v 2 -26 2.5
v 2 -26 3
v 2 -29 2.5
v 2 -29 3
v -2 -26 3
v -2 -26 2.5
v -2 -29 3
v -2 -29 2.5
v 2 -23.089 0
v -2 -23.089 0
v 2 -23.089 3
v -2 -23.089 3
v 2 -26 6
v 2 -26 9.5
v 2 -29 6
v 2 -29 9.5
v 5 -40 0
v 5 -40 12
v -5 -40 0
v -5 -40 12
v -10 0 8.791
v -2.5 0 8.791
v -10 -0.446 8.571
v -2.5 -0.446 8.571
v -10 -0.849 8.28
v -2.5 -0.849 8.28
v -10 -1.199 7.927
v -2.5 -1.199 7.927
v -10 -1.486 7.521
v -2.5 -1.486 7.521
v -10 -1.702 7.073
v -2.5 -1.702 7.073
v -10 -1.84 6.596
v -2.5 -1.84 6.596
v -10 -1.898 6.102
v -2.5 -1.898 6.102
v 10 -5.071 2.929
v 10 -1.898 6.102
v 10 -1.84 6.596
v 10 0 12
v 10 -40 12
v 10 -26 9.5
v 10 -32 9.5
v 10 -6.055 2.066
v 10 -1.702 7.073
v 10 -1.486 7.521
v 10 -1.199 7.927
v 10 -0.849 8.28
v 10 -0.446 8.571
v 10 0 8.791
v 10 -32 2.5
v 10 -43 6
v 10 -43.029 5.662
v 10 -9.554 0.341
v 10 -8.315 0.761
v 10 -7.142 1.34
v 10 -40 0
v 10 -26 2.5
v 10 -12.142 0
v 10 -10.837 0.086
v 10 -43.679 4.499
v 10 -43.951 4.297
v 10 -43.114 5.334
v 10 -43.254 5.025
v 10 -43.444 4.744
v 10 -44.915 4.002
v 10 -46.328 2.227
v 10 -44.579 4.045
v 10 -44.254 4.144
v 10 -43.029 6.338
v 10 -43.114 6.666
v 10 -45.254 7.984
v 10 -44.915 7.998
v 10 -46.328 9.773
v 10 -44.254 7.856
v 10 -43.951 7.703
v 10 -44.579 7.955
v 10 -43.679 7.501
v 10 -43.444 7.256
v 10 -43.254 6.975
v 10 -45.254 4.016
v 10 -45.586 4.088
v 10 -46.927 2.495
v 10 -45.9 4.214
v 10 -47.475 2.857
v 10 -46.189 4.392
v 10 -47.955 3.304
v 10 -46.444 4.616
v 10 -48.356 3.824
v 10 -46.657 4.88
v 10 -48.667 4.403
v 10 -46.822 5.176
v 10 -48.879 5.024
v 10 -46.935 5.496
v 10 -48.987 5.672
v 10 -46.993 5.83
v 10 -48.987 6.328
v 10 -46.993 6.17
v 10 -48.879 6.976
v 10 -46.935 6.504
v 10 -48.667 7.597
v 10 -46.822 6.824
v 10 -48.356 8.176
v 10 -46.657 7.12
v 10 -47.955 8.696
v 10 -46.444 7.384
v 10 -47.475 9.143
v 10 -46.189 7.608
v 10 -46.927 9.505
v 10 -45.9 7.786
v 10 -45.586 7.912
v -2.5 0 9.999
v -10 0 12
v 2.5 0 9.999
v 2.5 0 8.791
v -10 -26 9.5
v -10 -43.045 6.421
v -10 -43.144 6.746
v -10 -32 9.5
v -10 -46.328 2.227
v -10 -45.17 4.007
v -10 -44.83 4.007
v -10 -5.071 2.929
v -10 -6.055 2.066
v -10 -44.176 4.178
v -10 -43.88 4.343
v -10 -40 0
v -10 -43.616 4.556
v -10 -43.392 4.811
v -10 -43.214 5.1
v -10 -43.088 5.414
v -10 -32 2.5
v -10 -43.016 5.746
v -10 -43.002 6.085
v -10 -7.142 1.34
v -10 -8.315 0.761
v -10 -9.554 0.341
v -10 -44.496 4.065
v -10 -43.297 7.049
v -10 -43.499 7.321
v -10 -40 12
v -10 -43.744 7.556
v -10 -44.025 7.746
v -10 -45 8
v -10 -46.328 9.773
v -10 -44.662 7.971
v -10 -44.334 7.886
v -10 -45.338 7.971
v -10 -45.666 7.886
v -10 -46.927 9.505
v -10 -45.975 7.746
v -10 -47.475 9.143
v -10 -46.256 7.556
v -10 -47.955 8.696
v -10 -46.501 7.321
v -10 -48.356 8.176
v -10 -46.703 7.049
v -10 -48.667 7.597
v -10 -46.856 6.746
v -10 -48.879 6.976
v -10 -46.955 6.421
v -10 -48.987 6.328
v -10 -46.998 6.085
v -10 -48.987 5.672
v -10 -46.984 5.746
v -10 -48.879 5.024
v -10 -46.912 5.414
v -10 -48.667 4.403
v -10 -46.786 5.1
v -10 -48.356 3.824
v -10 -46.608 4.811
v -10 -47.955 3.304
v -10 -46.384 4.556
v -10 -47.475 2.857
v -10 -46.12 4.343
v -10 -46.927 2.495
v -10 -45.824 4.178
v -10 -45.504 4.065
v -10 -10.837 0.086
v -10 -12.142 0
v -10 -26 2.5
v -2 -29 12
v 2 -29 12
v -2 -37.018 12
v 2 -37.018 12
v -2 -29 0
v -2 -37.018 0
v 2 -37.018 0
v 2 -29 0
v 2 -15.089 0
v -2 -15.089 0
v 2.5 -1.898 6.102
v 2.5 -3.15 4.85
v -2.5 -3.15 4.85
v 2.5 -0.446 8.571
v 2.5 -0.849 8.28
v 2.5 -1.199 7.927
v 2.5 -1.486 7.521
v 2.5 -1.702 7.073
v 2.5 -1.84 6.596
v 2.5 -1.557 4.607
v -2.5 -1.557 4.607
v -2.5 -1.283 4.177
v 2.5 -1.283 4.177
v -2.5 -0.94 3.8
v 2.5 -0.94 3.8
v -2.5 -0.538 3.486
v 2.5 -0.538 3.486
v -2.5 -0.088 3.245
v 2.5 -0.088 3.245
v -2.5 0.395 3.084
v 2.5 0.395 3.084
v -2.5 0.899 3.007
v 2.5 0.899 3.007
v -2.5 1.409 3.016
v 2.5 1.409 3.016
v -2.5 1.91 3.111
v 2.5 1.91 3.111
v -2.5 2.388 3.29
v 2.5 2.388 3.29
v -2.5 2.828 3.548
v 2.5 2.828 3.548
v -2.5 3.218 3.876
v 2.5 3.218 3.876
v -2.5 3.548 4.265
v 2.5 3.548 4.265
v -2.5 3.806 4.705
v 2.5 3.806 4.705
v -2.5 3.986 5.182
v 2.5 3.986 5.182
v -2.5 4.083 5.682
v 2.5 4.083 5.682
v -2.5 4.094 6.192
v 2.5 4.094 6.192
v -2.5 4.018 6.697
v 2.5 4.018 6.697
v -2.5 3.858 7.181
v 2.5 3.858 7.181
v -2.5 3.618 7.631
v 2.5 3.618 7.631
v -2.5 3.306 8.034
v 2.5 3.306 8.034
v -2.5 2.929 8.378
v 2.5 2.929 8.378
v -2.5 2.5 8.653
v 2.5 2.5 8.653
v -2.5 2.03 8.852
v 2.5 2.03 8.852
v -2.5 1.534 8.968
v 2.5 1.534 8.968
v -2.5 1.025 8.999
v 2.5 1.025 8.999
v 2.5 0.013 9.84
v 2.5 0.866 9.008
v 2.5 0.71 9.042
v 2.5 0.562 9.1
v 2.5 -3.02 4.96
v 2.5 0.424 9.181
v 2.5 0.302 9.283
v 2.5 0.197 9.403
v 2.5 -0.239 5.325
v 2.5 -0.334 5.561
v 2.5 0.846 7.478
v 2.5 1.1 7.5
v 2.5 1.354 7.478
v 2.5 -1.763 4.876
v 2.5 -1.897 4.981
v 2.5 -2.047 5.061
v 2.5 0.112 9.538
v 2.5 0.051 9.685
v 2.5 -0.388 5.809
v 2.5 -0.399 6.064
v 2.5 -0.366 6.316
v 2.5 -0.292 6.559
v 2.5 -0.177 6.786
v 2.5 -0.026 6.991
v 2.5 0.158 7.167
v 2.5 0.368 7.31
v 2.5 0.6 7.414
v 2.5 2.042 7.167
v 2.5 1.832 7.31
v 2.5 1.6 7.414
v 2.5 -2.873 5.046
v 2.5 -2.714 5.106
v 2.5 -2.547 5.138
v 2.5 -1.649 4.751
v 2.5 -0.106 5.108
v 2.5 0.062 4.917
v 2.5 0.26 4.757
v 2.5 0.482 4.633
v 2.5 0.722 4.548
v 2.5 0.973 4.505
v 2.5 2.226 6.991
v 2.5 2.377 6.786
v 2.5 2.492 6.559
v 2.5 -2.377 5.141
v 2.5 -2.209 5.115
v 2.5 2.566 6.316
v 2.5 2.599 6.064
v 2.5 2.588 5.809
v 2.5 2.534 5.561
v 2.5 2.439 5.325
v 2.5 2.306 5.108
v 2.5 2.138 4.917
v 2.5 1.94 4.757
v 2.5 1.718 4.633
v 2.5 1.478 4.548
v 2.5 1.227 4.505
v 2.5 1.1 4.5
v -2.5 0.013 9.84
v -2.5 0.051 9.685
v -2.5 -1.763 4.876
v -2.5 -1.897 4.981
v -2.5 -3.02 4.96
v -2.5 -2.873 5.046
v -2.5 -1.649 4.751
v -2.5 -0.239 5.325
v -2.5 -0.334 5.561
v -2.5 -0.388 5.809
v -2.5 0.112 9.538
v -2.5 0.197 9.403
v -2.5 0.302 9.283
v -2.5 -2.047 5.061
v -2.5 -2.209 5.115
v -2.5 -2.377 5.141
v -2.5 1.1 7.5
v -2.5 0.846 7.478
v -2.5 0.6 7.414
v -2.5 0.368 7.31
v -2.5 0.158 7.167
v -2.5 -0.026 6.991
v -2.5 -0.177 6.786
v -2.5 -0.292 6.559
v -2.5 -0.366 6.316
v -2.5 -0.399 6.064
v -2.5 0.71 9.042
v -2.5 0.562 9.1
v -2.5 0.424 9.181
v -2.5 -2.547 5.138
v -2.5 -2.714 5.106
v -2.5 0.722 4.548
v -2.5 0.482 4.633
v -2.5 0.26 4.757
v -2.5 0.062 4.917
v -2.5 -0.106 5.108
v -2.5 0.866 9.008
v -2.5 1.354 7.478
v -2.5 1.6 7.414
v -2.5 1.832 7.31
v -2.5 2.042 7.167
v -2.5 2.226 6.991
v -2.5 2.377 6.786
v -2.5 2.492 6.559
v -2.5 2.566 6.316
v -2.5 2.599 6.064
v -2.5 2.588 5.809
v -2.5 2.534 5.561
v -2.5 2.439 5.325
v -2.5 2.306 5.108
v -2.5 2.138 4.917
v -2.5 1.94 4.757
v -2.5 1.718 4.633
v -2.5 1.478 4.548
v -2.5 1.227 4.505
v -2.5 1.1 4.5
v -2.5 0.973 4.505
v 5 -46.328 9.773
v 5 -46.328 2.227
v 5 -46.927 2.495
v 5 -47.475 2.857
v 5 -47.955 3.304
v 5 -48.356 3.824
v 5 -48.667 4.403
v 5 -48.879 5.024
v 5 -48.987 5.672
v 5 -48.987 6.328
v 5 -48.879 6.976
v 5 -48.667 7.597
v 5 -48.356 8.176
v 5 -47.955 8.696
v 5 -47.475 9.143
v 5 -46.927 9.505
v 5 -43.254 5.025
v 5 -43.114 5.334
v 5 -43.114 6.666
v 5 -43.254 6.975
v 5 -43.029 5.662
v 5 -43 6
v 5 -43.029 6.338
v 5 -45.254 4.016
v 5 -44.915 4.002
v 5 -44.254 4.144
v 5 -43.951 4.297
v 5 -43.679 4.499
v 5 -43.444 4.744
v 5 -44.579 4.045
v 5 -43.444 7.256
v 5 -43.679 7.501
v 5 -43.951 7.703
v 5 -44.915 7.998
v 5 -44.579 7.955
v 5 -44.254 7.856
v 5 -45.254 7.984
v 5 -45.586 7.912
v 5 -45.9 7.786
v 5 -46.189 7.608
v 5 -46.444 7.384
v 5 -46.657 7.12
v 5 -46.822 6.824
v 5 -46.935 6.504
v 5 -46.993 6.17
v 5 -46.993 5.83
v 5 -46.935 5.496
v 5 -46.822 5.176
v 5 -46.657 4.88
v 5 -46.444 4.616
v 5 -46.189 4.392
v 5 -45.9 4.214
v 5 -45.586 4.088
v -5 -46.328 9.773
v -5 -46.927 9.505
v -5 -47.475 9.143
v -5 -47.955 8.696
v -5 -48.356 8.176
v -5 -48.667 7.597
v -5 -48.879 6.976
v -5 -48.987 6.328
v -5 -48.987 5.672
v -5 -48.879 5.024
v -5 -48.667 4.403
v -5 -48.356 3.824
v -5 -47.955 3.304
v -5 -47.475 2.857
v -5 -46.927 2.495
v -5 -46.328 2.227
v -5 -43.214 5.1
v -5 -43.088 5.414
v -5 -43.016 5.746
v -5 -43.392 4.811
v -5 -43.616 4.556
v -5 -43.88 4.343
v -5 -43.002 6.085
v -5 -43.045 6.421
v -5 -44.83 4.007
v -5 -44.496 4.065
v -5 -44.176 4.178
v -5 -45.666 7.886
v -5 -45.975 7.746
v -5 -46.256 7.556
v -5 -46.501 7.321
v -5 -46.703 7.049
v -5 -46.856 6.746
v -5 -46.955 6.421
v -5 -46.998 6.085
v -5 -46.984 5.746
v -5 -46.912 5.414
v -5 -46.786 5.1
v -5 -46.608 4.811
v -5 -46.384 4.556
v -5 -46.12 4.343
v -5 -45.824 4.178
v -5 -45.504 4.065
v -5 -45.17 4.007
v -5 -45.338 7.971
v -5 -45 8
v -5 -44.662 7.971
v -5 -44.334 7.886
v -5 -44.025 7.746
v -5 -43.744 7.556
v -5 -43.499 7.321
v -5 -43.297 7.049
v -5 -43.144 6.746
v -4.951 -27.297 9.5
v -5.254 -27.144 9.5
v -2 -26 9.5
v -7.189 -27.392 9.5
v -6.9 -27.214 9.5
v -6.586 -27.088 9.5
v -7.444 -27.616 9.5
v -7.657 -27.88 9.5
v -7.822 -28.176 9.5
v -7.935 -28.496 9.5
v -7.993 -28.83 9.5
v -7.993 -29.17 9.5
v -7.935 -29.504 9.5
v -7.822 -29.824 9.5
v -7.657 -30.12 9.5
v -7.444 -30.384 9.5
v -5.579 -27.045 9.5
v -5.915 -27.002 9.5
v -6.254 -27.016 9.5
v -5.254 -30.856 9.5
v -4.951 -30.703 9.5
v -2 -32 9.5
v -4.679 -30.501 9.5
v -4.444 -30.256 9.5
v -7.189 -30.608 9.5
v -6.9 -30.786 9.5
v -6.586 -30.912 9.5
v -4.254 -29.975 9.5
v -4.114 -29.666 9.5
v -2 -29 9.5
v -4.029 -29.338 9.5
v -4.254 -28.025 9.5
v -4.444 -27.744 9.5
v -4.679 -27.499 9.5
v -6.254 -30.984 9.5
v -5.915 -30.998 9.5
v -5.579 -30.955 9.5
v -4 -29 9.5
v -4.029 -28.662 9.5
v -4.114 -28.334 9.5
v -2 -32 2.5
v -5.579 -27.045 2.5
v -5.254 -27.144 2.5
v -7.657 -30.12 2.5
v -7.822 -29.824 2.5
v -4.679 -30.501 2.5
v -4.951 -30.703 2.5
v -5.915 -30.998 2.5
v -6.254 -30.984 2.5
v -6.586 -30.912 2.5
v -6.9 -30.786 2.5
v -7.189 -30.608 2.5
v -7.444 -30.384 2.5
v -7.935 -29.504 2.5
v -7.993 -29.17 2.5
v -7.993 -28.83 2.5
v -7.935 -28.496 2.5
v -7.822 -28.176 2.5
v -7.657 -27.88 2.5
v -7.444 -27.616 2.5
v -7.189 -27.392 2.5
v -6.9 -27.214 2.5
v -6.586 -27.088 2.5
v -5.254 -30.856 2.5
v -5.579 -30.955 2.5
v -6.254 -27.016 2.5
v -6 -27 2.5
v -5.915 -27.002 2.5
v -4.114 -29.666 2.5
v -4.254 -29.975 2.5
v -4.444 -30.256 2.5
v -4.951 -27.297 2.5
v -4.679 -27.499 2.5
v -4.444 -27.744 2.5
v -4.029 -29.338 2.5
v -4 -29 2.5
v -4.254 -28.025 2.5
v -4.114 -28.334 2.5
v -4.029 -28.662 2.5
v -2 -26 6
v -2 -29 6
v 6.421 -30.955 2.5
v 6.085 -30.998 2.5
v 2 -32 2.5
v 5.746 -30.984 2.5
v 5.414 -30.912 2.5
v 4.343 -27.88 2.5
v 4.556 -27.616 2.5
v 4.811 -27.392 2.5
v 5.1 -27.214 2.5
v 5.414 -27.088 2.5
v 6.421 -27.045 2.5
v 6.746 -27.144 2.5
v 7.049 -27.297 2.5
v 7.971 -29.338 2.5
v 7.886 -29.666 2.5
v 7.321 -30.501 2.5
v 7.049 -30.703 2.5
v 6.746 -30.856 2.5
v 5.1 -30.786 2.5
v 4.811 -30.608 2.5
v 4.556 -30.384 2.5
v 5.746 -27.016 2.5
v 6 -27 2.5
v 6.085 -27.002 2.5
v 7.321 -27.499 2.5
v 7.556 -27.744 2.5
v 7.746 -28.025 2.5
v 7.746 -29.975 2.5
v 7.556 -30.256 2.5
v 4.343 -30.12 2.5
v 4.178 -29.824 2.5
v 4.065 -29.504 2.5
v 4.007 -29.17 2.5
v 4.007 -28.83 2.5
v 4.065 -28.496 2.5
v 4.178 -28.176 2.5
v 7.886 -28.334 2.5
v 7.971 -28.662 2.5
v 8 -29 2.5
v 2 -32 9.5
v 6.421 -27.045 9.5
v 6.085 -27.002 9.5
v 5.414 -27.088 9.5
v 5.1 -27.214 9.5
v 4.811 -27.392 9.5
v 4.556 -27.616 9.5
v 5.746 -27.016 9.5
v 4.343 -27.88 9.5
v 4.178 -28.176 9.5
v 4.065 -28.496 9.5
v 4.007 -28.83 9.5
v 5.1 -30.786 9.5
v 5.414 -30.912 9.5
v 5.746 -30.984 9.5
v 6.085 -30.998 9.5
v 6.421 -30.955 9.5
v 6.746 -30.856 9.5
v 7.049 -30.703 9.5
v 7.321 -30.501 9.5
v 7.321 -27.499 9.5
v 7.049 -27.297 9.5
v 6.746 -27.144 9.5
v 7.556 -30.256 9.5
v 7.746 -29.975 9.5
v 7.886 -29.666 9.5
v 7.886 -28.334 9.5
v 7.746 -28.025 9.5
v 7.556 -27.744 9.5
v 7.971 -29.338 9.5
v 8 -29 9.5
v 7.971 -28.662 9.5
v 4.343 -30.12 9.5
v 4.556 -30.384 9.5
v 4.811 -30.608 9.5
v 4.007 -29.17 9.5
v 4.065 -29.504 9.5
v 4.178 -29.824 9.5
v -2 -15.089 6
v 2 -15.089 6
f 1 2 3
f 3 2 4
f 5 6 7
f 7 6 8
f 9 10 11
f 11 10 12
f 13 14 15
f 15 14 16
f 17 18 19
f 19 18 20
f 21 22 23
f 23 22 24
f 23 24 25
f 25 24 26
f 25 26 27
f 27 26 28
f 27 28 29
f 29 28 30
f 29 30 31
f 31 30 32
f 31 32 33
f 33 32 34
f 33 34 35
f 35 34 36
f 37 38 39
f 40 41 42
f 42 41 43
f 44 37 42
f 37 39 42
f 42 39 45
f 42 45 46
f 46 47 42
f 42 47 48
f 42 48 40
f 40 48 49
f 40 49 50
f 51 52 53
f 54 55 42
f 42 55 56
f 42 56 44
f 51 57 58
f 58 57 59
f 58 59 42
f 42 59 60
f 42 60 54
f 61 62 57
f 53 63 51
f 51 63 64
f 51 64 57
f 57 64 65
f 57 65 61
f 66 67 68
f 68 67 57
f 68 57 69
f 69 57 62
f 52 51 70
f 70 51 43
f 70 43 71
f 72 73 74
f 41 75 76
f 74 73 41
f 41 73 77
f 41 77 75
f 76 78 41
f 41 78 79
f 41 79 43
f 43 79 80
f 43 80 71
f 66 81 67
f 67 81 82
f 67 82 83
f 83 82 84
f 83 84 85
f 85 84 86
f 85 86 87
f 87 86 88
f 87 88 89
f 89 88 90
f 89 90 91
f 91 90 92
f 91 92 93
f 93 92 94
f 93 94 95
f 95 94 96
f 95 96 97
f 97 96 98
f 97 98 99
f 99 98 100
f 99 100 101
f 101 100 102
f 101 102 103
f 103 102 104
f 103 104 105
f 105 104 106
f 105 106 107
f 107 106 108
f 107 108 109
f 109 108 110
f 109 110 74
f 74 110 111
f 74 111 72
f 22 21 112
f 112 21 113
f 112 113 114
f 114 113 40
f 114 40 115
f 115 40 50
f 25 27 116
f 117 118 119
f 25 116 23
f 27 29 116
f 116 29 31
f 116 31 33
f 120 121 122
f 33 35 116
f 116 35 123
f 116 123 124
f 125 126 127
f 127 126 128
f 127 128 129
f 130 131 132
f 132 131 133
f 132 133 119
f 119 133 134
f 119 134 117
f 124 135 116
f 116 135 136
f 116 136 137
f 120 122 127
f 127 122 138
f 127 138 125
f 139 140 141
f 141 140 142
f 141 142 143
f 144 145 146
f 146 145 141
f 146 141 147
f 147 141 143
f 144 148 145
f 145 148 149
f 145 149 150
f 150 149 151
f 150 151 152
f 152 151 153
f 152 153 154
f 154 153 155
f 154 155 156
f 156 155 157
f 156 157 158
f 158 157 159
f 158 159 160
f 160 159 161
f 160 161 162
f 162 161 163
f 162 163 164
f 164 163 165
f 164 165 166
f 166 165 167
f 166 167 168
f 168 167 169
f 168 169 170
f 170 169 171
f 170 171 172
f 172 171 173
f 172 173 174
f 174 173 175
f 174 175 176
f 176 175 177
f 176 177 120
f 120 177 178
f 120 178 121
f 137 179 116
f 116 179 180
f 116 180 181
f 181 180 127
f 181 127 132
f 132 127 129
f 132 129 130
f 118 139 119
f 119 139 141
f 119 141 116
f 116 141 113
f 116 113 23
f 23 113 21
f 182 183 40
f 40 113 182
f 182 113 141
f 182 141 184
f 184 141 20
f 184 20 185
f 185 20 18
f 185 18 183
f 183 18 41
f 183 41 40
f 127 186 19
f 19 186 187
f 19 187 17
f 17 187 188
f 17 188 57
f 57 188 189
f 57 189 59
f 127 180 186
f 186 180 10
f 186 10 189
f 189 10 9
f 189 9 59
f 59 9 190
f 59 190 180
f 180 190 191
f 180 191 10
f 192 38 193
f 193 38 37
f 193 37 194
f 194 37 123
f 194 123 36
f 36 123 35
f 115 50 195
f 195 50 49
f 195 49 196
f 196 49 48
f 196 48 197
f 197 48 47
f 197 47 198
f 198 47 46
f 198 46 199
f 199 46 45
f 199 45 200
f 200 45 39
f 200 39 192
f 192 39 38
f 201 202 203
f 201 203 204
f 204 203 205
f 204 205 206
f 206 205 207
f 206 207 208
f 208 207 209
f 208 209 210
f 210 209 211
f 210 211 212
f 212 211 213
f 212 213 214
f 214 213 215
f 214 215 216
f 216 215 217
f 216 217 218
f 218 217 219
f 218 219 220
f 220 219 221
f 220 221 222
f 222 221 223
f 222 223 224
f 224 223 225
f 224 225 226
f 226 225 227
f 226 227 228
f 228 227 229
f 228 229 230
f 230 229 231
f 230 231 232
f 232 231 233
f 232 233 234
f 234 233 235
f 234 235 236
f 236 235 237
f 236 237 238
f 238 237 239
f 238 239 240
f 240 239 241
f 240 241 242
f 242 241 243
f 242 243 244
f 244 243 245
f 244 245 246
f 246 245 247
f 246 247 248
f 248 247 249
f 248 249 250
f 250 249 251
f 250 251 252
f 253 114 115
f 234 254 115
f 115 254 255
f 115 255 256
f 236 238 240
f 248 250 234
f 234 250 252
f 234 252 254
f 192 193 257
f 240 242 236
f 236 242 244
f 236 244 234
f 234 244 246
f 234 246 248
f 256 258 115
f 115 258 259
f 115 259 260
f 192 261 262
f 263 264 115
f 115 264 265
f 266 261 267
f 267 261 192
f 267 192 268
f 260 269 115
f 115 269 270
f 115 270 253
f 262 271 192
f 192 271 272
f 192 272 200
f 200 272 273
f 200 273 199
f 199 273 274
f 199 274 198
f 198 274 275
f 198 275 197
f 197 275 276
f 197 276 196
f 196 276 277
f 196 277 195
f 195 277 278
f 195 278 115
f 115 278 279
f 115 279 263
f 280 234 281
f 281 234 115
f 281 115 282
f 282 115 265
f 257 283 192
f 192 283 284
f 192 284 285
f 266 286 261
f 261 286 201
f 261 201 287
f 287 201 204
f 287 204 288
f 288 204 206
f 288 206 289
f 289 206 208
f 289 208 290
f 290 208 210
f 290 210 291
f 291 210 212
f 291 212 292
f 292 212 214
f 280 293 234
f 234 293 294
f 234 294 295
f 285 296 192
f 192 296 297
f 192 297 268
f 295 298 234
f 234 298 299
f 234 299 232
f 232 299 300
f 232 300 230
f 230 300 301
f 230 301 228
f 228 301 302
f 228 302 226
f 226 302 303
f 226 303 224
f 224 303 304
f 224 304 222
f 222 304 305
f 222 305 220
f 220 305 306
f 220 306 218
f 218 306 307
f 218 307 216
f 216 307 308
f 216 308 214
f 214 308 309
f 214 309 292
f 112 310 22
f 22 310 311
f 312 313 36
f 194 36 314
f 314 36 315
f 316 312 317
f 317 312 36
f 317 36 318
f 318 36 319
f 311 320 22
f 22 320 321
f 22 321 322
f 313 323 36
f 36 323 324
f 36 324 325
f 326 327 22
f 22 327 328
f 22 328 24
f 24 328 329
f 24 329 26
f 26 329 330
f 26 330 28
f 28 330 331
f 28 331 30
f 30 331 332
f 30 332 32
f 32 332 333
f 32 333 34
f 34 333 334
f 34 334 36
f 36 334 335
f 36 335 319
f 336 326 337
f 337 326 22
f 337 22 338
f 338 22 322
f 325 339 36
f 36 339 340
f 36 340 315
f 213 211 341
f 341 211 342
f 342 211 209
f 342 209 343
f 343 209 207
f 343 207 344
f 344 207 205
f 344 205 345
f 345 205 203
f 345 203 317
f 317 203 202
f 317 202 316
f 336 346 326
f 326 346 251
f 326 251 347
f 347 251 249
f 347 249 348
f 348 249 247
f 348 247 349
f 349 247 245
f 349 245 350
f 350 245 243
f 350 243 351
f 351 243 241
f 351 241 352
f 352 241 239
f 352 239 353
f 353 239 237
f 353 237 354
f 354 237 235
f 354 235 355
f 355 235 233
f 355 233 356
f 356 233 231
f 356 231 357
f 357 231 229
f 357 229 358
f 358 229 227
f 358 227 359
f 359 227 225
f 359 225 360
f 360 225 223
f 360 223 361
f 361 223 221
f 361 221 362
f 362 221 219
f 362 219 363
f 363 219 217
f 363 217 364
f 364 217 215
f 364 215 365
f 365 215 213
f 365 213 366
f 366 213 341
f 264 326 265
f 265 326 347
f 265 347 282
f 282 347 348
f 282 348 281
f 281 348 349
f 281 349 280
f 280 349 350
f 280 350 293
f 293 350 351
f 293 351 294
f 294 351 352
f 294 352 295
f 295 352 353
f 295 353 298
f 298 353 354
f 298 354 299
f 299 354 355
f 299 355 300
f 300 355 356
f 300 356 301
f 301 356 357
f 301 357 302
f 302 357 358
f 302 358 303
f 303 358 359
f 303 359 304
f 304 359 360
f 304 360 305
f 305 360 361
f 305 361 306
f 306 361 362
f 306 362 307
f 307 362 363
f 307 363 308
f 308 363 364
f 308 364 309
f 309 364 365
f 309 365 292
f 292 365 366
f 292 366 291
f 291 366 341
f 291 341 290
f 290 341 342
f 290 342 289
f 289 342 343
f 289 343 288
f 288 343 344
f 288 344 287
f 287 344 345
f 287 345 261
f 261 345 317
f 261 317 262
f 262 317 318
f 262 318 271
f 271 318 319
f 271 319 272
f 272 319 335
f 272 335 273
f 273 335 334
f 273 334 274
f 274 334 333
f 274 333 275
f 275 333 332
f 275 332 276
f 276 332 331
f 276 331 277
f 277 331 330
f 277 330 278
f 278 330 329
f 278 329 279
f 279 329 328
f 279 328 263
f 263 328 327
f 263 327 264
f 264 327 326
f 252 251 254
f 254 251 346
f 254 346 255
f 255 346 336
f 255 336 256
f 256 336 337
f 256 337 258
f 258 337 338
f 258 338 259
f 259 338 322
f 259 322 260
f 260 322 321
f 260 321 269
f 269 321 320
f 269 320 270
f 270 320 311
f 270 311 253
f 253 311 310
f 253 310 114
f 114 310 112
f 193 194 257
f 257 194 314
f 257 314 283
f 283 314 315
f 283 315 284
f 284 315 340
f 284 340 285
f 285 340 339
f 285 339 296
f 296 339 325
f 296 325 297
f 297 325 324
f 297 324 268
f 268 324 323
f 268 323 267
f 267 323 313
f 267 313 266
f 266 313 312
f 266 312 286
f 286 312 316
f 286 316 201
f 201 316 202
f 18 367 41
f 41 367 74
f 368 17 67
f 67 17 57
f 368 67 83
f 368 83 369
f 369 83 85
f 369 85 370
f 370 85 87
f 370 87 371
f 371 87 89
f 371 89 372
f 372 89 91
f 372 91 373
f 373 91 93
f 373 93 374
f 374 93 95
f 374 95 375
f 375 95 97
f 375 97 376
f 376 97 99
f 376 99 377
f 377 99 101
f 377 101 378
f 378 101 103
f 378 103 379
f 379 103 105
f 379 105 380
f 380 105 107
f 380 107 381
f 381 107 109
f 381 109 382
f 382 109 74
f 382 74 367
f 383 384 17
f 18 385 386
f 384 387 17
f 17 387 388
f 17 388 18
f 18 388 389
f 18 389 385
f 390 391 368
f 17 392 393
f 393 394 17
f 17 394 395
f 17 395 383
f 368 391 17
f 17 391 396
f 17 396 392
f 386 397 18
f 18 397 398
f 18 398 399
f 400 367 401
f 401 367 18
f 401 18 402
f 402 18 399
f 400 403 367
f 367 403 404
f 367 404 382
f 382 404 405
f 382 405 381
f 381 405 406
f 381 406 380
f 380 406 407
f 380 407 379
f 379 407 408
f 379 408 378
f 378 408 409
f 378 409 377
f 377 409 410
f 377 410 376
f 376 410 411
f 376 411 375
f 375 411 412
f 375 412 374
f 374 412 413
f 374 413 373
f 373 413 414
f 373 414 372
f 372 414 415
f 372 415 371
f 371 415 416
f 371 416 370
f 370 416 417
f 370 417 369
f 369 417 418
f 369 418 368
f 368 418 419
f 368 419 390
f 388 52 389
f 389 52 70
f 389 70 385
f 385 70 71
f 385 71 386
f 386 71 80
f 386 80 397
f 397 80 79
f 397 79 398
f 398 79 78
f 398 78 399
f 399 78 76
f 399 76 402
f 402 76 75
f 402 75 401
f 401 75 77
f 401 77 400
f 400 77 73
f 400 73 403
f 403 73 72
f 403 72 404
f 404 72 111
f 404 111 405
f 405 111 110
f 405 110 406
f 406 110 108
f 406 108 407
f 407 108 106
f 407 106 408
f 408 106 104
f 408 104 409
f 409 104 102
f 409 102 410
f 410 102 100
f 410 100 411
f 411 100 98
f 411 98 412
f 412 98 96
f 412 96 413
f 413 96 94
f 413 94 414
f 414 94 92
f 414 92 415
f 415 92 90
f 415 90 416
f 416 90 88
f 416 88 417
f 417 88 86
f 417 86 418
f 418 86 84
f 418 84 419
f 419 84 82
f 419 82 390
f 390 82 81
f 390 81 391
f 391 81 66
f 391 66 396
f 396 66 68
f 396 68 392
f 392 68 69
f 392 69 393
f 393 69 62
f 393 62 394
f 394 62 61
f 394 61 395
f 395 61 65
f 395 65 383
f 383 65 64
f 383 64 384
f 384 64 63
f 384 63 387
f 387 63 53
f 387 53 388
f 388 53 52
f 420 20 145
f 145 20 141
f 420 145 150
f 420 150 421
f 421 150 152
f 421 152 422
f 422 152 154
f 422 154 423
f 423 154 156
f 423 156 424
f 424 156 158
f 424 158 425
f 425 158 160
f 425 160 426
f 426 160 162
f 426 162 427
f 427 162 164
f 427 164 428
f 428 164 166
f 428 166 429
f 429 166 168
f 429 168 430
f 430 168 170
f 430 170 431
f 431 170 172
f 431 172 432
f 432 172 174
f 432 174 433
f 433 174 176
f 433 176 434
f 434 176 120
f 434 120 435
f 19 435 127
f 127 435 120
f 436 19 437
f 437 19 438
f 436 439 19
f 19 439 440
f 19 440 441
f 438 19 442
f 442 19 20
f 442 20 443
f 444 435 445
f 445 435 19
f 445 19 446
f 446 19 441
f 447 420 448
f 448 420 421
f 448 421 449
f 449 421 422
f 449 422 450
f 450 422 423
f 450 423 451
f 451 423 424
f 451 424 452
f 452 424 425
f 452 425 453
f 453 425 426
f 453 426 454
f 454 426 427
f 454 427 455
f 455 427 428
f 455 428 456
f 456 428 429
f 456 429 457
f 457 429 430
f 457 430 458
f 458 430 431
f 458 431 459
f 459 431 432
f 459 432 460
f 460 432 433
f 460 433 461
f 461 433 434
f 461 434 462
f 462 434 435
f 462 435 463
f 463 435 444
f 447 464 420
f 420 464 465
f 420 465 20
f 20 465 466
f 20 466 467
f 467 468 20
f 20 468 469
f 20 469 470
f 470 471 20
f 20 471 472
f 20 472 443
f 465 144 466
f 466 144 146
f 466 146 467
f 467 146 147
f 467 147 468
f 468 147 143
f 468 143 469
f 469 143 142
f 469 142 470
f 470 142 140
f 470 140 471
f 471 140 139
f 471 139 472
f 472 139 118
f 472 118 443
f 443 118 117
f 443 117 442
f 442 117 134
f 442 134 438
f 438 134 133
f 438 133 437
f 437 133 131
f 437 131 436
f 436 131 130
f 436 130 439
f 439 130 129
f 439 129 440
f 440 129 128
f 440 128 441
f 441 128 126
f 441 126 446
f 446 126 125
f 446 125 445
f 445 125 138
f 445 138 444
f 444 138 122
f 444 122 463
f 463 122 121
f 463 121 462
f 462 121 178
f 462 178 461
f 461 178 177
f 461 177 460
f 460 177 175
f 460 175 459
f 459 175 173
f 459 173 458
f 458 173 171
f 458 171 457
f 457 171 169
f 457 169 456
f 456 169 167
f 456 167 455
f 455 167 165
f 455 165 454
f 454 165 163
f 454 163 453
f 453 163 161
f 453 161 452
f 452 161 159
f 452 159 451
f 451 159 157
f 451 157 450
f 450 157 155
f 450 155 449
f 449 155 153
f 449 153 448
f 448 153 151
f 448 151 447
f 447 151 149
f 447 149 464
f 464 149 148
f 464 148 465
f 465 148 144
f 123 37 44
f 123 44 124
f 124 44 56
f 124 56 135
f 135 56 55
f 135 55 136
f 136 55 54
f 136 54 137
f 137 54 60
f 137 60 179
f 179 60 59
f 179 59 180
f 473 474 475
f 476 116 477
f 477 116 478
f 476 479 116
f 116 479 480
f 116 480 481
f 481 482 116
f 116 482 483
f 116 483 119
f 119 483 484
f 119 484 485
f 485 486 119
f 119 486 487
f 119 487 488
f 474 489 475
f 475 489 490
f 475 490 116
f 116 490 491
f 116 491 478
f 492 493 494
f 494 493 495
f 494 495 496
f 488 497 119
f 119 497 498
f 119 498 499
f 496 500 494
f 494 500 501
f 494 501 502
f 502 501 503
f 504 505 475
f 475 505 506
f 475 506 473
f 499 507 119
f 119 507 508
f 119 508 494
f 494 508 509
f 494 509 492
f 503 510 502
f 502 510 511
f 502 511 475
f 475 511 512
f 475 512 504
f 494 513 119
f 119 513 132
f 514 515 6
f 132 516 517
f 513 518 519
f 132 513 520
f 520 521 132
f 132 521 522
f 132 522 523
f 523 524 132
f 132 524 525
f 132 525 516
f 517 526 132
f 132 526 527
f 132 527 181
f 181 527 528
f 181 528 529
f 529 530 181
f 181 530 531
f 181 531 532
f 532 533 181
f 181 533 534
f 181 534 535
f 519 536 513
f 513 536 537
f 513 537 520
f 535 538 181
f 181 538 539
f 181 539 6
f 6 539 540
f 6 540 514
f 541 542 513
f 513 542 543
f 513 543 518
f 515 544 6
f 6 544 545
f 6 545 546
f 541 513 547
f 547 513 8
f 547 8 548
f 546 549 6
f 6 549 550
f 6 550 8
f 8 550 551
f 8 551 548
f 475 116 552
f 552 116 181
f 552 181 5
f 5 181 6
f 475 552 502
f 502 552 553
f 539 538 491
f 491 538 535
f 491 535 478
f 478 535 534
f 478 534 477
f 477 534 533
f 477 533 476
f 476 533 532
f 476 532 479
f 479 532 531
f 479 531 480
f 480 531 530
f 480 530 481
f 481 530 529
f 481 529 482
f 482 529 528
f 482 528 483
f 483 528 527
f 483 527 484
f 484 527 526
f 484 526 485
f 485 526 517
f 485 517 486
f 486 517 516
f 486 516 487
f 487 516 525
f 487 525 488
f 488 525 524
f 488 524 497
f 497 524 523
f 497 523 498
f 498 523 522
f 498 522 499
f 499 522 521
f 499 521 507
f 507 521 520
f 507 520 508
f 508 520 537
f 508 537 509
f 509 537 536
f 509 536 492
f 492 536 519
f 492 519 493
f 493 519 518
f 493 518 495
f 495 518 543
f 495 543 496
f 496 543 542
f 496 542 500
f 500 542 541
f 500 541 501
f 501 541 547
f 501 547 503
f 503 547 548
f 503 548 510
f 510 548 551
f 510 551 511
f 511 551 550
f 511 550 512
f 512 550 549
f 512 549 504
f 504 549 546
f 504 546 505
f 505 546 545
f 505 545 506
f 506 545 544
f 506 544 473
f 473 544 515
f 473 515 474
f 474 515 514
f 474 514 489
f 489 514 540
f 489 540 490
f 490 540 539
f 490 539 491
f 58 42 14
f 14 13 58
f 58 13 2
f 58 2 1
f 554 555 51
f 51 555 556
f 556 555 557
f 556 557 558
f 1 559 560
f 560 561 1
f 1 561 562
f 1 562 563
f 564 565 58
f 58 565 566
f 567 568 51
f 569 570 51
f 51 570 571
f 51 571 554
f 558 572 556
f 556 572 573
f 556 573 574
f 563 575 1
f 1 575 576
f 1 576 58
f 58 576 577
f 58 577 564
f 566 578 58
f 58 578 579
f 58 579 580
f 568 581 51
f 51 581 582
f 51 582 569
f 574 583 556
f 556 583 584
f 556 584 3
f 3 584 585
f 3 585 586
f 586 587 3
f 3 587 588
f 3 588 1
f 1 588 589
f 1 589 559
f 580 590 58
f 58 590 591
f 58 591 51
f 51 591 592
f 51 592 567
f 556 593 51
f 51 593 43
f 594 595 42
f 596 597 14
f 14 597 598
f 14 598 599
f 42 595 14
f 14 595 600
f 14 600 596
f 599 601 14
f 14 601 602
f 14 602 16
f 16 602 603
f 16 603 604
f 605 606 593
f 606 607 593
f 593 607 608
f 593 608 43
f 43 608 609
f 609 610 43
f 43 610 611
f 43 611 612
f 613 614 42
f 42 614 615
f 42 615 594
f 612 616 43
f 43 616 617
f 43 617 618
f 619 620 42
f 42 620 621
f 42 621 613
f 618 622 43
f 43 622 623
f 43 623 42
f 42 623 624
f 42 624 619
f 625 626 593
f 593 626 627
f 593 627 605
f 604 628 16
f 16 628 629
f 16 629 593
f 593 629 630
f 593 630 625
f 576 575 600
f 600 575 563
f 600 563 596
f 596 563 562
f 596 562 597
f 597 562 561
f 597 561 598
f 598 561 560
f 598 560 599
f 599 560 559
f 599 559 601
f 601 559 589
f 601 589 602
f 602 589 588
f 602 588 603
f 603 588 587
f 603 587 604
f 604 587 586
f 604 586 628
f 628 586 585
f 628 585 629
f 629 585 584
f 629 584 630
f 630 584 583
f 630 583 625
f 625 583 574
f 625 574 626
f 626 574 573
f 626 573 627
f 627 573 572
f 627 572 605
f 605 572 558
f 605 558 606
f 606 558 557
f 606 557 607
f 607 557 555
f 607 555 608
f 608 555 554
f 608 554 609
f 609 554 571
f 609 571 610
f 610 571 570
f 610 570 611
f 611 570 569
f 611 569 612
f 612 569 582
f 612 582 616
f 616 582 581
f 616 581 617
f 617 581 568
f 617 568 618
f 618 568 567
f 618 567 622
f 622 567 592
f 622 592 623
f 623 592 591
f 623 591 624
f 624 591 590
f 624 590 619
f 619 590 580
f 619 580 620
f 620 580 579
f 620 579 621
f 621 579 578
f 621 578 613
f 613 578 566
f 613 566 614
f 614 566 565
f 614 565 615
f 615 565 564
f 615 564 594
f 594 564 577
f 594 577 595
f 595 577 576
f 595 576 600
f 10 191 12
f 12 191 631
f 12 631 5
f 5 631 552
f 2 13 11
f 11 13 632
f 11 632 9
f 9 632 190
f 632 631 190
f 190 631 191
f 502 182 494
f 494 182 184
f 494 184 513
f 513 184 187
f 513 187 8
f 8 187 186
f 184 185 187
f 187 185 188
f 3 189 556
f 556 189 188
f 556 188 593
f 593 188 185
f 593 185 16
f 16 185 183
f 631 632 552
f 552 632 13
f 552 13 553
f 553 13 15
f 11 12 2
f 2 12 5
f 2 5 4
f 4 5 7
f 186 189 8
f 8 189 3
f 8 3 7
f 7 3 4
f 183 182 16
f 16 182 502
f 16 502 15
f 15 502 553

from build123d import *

# Parameters (mm, degrees)
SKETCH1_W               = 20
SKETCH1_H               = 40
BOSS_EXTRUDE1_DEPTH     = 12
CUT_EXTRUDE1_DEPTH      = 43.941821107
CUT_EXTRUDE1_DEPTH_BACK = 43.941821107
CUT_EXTRUDE2_DEPTH      = 43.941821107
CUT_EXTRUDE2_DEPTH_BACK = 43.941821107
SKETCH4_R               = 3
SKETCH4_R_2             = 1.5
BOSS_EXTRUDE2_DEPTH     = 2.5
FILLET1_R               = 1
SKETCH5_R               = 2
BOSS_EXTRUDE3_DEPTH     = 5
BOSS_EXTRUDE4_START     = -5
SKETCH7_R               = 2
BOSS_EXTRUDE4_DEPTH     = 5
FILLET2_R               = 10
SKETCH8_W               = 7
SKETCH8_H               = 6
CUT_EXTRUDE3_DEPTH      = 8
SKETCH10_R              = 2
BOSS_EXTRUDE5_DEPTH     = 7
SKETCH11_W              = 7
SKETCH11_H              = 6
CUT_EXTRUDE4_DEPTH      = 8
SKETCH12_R              = 2
BOSS_EXTRUDE6_DEPTH     = 8
SKETCH13_W              = 4
SKETCH13_H              = 8
CUT_EXTRUDE5_DEPTH      = 6
SKETCH16_W              = 4
SKETCH16_H              = 3
CUT_EXTRUDE6_DEPTH      = 6
SKETCH17_W              = 4
SKETCH17_H              = 8.017766953
CUT_EXTRUDE7_DEPTH      = 52.429563482


with BuildPart() as part:
    # Sketch1 → Boss-Extrude1 (new body)
    with BuildSketch(Plane.XY):
        with Locations((0, -20)):
            Rectangle(SKETCH1_W, SKETCH1_H)
    extrude(amount=BOSS_EXTRUDE1_DEPTH)

    # Sketch2 → Cut-Extrude1 (cut, two sides: drawn at the far end of the back side and taken through both)
    with BuildSketch(Plane(origin=(0, 0, 0), x_dir=(0, 0, -1), z_dir=(1, 0, 0)).offset(-CUT_EXTRUDE1_DEPTH_BACK)):
        Polygon((-8, 0), (0, 0), (0, -8), align=None)
    extrude(amount=CUT_EXTRUDE1_DEPTH + CUT_EXTRUDE1_DEPTH_BACK, mode=Mode.SUBTRACT)

    # Sketch3 → Cut-Extrude2 (cut, two sides: drawn at the far end of the back side and taken through both)
    with BuildSketch(Plane(origin=(0, 0, 0), x_dir=(0, 0, -1), z_dir=(1, 0, 0)).offset(-CUT_EXTRUDE2_DEPTH_BACK)):
        with BuildLine():
            ThreePointArc((-3, 1.1), (-6.559834153, 4.04730143), (-8.791057147, 0))
            Line((-8.791057147, 0), (-7.019803903, 0))
            ThreePointArc((-7.019803903, 0), (-6.600122548, 2.474719218), (-4.5, 1.1))
            ThreePointArc((-4.5, 1.1), (-4.625280782, 0.499877452), (-4.980196097, 0))
            Line((-4.980196097, 0), (-3.208942853, 0))
            ThreePointArc((-3.208942853, 0), (-3.05269857, 0.540165847), (-3, 1.1))
        make_face()
        with BuildLine():
            Line((-7.019803903, 0), (-8.791057147, 0))
            ThreePointArc((-8.791057147, 0), (-6, -1.9), (-3.208942853, 0))
            Line((-3.208942853, 0), (-4.980196097, 0))
            ThreePointArc((-4.980196097, 0), (-6, -0.4), (-7.019803903, 0))
        make_face()
    extrude(amount=CUT_EXTRUDE2_DEPTH + CUT_EXTRUDE2_DEPTH_BACK, mode=Mode.SUBTRACT)

    # Sketch4 → Boss-Extrude2 (add, symmetric)
    with BuildSketch(Plane(origin=(0, 0, 0), x_dir=(0, 0, -1), z_dir=(1, 0, 0))):
        with Locations((-6, 1.1)):
            Circle(SKETCH4_R)
        with Locations((-6, 1.1)):
            Circle(SKETCH4_R_2, mode=Mode.SUBTRACT)
    extrude(amount=BOSS_EXTRUDE2_DEPTH, both=True)

    # Fillet1
    fillet1_edges = [part.edges().sort_by_distance(p)[0] for p in [
        (0, -1.898274836, 6.101725164),
        (0, 0, 8.791057147),
    ]]
    fillet(fillet1_edges, radius=FILLET1_R)

    # Sketch5 → Boss-Extrude3 (add)
    with BuildSketch(Plane(origin=(10, 0, 0), x_dir=(0, 0, -1), z_dir=(1, 0, 0))):
        with BuildLine():
            Line((-2.226818383, -46.327817941), (0, -40))
            Line((0, -40), (-12, -40))
            Line((-12, -40), (-9.773181617, -46.327817941))
            ThreePointArc((-9.773181617, -46.327817941), (-6, -49), (-2.226818383, -46.327817941))
        make_face()
        with Locations(Location((-6, -45, 0), (0, 0, 90))):
            Circle(SKETCH5_R, mode=Mode.SUBTRACT)
    extrude(amount=-BOSS_EXTRUDE3_DEPTH)

    # Sketch7 → Boss-Extrude4 (add)
    with BuildSketch(Plane.ZY.offset(10).offset(BOSS_EXTRUDE4_START)):
        with BuildLine():
            Line((12, -40), (0, -40))
            Line((0, -40), (2.226818383, -46.327817941))
            ThreePointArc((2.226818383, -46.327817941), (6, -49), (9.773181617, -46.327817941))
            Line((9.773181617, -46.327817941), (12, -40))
        make_face()
        with Locations(Location((6, -45, 0), (0, 0, 90))):
            Circle(SKETCH7_R, mode=Mode.SUBTRACT)
    extrude(amount=BOSS_EXTRUDE4_DEPTH)

    # Fillet2
    fillet2_edges = [part.edges().sort_by_distance(p)[0] for p in [
        (0, -8, 0),
    ]]
    fillet(fillet2_edges, radius=FILLET2_R)

    # Sketch8 → Cut-Extrude3 (cut)
    with BuildSketch(Plane.ZY.offset(10)):
        with Locations((6, -29)):
            Rectangle(SKETCH8_W, SKETCH8_H)
    extrude(amount=-CUT_EXTRUDE3_DEPTH, mode=Mode.SUBTRACT)

    # Sketch10 → Boss-Extrude5 (add)
    with BuildSketch(Plane(origin=(0, 0, 9.5), x_dir=(-1, 0, 0), z_dir=(0, 0, -1))):
        with Locations(Location((6, -29, 0), (0, 0, 180))):
            Circle(SKETCH10_R)
    extrude(amount=BOSS_EXTRUDE5_DEPTH)

    # Sketch11 → Cut-Extrude4 (cut)
    with BuildSketch(Plane(origin=(10, 0, 0), x_dir=(0, 0, -1), z_dir=(1, 0, 0))):
        with Locations((-6, -29)):
            Rectangle(SKETCH11_W, SKETCH11_H)
    extrude(amount=-CUT_EXTRUDE4_DEPTH, mode=Mode.SUBTRACT)

    # Sketch12 → Boss-Extrude6 (add)
    with BuildSketch(Plane(origin=(0, 0, 9.5), x_dir=(-1, 0, 0), z_dir=(0, 0, -1))):
        with Locations(Location((-6, -29, 0), (0, 0, 180))):
            Circle(SKETCH12_R)
    extrude(amount=BOSS_EXTRUDE6_DEPTH)

    # Sketch13 → Cut-Extrude5 (cut)
    with BuildSketch(Plane(origin=(0, 0, 0), x_dir=(-1, 0, 0), z_dir=(0, 0, -1))):
        with Locations((0, -33.017766953)):
            Rectangle(SKETCH13_W, SKETCH13_H)
        with Locations((0, -19.088834765)):
            Rectangle(SKETCH13_W, SKETCH13_H)
    extrude(amount=-CUT_EXTRUDE5_DEPTH, mode=Mode.SUBTRACT)

    # Sketch16 → Cut-Extrude6 (cut)
    with BuildSketch(Plane.XZ.offset(29.017766953)):
        with Locations((0, 4.5)):
            Rectangle(SKETCH16_W, SKETCH16_H)
    extrude(amount=-CUT_EXTRUDE6_DEPTH, mode=Mode.SUBTRACT)

    # Sketch17 → Cut-Extrude7 (cut, through all)
    with BuildSketch(Plane(origin=(0, 0, 0), x_dir=(-1, 0, 0), z_dir=(0, 0, -1))):
        with Locations((0, -33.008883477)):
            Rectangle(SKETCH17_W, SKETCH17_H)
    extrude(amount=-CUT_EXTRUDE7_DEPTH, mode=Mode.SUBTRACT)


solid = part.part
